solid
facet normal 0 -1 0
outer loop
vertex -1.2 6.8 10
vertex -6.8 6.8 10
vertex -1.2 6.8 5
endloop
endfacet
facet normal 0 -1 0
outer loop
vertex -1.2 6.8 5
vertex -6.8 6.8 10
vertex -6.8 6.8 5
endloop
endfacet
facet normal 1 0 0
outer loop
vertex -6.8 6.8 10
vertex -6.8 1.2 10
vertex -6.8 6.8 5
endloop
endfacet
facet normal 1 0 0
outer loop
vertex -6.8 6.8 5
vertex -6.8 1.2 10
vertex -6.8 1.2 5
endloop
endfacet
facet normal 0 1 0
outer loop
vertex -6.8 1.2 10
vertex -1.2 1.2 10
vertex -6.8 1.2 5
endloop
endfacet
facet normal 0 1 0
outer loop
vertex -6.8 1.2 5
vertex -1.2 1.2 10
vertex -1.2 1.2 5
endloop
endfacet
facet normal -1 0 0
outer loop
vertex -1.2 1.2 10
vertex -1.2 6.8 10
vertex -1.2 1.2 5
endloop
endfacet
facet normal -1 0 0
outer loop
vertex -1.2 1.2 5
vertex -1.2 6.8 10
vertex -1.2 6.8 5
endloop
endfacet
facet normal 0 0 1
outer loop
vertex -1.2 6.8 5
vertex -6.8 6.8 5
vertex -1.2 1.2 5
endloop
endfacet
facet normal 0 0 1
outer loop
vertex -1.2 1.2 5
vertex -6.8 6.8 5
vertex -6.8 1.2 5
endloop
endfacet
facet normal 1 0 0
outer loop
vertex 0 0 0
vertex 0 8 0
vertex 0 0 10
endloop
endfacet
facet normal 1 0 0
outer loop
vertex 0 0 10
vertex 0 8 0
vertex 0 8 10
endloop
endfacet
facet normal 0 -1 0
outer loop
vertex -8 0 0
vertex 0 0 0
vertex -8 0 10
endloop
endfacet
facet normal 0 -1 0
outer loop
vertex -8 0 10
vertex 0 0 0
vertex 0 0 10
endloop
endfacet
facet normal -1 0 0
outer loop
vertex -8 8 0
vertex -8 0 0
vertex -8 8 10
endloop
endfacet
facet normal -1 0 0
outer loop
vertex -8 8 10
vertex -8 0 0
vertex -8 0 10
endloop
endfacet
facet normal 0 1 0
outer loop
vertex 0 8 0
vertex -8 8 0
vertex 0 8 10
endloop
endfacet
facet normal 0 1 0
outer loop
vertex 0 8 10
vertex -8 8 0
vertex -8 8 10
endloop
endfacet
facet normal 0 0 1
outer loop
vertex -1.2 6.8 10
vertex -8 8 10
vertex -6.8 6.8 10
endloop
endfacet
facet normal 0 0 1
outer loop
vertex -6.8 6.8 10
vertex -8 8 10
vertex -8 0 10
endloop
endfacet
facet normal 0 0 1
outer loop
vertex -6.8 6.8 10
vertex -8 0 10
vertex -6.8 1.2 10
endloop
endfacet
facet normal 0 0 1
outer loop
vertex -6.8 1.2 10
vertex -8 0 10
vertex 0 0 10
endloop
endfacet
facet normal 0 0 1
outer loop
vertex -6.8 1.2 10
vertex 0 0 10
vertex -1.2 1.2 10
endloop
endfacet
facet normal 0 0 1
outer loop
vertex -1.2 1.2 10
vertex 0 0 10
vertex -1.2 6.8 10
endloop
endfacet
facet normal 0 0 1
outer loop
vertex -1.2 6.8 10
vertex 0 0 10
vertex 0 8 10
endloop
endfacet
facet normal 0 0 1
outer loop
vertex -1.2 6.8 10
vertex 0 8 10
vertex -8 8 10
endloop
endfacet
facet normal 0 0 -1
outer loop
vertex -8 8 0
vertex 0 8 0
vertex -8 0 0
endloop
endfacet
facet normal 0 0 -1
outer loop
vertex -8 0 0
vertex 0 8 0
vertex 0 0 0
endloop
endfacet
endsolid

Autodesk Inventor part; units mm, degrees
ref_plane "YZ Plane" through (0, 0, 0) normal (1, 0, 0) x (0, 1, 0)
ref_plane "XZ Plane" through (0, 0, 0) normal (0, 1, 0) x (-1, 0, 0)
ref_plane "XY Plane" through (0, 0, 0) normal (0, 0, 1) x (1, 0, 0)
sketch "Sketch4" plane through (0, 0, 0) normal (0, 0, 1) x (1, 0, 0)
  line L0 (0, 0) -> (-8, 0)
  line L1 (-8, 0) -> (-8, 8)
  line L2 (-8, 8) -> (0, 8)
  line L3 (0, 8) -> (0, 0)
  dimension "d30" = 8
  dimension "d31" = 8
extrude "Extrusion6" add sketch "Sketch4" along normal blind 10
sketch "Sketch6" plane through (0, 0, 10) normal (0, 0, 1) x (1, 0, 0)
  line L0 (-4, 4) -> (-6.8, 4)
  line L1 (-6.8, 4) -> (-6.8, 6.8)
  line L2 (-6.8, 6.8) -> (-4, 6.8)
  line L3 (-4, 6.8) -> (-4, 4)
  line L4 (-6.8, 6.8) -> (-1.2, 6.8)
  line L5 (-1.2, 6.8) -> (-1.2, 1.2)
  line L6 (-1.2, 1.2) -> (-6.8, 1.2)
  line L7 (-6.8, 1.2) -> (-6.8, 6.8)
  point P0 (0, 0)
  dimension "d40" = 2.8
  dimension "d41" = 2.8
  dimension "d42" = 5.6
  dimension "d43" = 5.6
extrude "Extrusion8" cut sketch "Sketch6" against normal blind 5
properties part number "Clip_MarkerHolderV1"
